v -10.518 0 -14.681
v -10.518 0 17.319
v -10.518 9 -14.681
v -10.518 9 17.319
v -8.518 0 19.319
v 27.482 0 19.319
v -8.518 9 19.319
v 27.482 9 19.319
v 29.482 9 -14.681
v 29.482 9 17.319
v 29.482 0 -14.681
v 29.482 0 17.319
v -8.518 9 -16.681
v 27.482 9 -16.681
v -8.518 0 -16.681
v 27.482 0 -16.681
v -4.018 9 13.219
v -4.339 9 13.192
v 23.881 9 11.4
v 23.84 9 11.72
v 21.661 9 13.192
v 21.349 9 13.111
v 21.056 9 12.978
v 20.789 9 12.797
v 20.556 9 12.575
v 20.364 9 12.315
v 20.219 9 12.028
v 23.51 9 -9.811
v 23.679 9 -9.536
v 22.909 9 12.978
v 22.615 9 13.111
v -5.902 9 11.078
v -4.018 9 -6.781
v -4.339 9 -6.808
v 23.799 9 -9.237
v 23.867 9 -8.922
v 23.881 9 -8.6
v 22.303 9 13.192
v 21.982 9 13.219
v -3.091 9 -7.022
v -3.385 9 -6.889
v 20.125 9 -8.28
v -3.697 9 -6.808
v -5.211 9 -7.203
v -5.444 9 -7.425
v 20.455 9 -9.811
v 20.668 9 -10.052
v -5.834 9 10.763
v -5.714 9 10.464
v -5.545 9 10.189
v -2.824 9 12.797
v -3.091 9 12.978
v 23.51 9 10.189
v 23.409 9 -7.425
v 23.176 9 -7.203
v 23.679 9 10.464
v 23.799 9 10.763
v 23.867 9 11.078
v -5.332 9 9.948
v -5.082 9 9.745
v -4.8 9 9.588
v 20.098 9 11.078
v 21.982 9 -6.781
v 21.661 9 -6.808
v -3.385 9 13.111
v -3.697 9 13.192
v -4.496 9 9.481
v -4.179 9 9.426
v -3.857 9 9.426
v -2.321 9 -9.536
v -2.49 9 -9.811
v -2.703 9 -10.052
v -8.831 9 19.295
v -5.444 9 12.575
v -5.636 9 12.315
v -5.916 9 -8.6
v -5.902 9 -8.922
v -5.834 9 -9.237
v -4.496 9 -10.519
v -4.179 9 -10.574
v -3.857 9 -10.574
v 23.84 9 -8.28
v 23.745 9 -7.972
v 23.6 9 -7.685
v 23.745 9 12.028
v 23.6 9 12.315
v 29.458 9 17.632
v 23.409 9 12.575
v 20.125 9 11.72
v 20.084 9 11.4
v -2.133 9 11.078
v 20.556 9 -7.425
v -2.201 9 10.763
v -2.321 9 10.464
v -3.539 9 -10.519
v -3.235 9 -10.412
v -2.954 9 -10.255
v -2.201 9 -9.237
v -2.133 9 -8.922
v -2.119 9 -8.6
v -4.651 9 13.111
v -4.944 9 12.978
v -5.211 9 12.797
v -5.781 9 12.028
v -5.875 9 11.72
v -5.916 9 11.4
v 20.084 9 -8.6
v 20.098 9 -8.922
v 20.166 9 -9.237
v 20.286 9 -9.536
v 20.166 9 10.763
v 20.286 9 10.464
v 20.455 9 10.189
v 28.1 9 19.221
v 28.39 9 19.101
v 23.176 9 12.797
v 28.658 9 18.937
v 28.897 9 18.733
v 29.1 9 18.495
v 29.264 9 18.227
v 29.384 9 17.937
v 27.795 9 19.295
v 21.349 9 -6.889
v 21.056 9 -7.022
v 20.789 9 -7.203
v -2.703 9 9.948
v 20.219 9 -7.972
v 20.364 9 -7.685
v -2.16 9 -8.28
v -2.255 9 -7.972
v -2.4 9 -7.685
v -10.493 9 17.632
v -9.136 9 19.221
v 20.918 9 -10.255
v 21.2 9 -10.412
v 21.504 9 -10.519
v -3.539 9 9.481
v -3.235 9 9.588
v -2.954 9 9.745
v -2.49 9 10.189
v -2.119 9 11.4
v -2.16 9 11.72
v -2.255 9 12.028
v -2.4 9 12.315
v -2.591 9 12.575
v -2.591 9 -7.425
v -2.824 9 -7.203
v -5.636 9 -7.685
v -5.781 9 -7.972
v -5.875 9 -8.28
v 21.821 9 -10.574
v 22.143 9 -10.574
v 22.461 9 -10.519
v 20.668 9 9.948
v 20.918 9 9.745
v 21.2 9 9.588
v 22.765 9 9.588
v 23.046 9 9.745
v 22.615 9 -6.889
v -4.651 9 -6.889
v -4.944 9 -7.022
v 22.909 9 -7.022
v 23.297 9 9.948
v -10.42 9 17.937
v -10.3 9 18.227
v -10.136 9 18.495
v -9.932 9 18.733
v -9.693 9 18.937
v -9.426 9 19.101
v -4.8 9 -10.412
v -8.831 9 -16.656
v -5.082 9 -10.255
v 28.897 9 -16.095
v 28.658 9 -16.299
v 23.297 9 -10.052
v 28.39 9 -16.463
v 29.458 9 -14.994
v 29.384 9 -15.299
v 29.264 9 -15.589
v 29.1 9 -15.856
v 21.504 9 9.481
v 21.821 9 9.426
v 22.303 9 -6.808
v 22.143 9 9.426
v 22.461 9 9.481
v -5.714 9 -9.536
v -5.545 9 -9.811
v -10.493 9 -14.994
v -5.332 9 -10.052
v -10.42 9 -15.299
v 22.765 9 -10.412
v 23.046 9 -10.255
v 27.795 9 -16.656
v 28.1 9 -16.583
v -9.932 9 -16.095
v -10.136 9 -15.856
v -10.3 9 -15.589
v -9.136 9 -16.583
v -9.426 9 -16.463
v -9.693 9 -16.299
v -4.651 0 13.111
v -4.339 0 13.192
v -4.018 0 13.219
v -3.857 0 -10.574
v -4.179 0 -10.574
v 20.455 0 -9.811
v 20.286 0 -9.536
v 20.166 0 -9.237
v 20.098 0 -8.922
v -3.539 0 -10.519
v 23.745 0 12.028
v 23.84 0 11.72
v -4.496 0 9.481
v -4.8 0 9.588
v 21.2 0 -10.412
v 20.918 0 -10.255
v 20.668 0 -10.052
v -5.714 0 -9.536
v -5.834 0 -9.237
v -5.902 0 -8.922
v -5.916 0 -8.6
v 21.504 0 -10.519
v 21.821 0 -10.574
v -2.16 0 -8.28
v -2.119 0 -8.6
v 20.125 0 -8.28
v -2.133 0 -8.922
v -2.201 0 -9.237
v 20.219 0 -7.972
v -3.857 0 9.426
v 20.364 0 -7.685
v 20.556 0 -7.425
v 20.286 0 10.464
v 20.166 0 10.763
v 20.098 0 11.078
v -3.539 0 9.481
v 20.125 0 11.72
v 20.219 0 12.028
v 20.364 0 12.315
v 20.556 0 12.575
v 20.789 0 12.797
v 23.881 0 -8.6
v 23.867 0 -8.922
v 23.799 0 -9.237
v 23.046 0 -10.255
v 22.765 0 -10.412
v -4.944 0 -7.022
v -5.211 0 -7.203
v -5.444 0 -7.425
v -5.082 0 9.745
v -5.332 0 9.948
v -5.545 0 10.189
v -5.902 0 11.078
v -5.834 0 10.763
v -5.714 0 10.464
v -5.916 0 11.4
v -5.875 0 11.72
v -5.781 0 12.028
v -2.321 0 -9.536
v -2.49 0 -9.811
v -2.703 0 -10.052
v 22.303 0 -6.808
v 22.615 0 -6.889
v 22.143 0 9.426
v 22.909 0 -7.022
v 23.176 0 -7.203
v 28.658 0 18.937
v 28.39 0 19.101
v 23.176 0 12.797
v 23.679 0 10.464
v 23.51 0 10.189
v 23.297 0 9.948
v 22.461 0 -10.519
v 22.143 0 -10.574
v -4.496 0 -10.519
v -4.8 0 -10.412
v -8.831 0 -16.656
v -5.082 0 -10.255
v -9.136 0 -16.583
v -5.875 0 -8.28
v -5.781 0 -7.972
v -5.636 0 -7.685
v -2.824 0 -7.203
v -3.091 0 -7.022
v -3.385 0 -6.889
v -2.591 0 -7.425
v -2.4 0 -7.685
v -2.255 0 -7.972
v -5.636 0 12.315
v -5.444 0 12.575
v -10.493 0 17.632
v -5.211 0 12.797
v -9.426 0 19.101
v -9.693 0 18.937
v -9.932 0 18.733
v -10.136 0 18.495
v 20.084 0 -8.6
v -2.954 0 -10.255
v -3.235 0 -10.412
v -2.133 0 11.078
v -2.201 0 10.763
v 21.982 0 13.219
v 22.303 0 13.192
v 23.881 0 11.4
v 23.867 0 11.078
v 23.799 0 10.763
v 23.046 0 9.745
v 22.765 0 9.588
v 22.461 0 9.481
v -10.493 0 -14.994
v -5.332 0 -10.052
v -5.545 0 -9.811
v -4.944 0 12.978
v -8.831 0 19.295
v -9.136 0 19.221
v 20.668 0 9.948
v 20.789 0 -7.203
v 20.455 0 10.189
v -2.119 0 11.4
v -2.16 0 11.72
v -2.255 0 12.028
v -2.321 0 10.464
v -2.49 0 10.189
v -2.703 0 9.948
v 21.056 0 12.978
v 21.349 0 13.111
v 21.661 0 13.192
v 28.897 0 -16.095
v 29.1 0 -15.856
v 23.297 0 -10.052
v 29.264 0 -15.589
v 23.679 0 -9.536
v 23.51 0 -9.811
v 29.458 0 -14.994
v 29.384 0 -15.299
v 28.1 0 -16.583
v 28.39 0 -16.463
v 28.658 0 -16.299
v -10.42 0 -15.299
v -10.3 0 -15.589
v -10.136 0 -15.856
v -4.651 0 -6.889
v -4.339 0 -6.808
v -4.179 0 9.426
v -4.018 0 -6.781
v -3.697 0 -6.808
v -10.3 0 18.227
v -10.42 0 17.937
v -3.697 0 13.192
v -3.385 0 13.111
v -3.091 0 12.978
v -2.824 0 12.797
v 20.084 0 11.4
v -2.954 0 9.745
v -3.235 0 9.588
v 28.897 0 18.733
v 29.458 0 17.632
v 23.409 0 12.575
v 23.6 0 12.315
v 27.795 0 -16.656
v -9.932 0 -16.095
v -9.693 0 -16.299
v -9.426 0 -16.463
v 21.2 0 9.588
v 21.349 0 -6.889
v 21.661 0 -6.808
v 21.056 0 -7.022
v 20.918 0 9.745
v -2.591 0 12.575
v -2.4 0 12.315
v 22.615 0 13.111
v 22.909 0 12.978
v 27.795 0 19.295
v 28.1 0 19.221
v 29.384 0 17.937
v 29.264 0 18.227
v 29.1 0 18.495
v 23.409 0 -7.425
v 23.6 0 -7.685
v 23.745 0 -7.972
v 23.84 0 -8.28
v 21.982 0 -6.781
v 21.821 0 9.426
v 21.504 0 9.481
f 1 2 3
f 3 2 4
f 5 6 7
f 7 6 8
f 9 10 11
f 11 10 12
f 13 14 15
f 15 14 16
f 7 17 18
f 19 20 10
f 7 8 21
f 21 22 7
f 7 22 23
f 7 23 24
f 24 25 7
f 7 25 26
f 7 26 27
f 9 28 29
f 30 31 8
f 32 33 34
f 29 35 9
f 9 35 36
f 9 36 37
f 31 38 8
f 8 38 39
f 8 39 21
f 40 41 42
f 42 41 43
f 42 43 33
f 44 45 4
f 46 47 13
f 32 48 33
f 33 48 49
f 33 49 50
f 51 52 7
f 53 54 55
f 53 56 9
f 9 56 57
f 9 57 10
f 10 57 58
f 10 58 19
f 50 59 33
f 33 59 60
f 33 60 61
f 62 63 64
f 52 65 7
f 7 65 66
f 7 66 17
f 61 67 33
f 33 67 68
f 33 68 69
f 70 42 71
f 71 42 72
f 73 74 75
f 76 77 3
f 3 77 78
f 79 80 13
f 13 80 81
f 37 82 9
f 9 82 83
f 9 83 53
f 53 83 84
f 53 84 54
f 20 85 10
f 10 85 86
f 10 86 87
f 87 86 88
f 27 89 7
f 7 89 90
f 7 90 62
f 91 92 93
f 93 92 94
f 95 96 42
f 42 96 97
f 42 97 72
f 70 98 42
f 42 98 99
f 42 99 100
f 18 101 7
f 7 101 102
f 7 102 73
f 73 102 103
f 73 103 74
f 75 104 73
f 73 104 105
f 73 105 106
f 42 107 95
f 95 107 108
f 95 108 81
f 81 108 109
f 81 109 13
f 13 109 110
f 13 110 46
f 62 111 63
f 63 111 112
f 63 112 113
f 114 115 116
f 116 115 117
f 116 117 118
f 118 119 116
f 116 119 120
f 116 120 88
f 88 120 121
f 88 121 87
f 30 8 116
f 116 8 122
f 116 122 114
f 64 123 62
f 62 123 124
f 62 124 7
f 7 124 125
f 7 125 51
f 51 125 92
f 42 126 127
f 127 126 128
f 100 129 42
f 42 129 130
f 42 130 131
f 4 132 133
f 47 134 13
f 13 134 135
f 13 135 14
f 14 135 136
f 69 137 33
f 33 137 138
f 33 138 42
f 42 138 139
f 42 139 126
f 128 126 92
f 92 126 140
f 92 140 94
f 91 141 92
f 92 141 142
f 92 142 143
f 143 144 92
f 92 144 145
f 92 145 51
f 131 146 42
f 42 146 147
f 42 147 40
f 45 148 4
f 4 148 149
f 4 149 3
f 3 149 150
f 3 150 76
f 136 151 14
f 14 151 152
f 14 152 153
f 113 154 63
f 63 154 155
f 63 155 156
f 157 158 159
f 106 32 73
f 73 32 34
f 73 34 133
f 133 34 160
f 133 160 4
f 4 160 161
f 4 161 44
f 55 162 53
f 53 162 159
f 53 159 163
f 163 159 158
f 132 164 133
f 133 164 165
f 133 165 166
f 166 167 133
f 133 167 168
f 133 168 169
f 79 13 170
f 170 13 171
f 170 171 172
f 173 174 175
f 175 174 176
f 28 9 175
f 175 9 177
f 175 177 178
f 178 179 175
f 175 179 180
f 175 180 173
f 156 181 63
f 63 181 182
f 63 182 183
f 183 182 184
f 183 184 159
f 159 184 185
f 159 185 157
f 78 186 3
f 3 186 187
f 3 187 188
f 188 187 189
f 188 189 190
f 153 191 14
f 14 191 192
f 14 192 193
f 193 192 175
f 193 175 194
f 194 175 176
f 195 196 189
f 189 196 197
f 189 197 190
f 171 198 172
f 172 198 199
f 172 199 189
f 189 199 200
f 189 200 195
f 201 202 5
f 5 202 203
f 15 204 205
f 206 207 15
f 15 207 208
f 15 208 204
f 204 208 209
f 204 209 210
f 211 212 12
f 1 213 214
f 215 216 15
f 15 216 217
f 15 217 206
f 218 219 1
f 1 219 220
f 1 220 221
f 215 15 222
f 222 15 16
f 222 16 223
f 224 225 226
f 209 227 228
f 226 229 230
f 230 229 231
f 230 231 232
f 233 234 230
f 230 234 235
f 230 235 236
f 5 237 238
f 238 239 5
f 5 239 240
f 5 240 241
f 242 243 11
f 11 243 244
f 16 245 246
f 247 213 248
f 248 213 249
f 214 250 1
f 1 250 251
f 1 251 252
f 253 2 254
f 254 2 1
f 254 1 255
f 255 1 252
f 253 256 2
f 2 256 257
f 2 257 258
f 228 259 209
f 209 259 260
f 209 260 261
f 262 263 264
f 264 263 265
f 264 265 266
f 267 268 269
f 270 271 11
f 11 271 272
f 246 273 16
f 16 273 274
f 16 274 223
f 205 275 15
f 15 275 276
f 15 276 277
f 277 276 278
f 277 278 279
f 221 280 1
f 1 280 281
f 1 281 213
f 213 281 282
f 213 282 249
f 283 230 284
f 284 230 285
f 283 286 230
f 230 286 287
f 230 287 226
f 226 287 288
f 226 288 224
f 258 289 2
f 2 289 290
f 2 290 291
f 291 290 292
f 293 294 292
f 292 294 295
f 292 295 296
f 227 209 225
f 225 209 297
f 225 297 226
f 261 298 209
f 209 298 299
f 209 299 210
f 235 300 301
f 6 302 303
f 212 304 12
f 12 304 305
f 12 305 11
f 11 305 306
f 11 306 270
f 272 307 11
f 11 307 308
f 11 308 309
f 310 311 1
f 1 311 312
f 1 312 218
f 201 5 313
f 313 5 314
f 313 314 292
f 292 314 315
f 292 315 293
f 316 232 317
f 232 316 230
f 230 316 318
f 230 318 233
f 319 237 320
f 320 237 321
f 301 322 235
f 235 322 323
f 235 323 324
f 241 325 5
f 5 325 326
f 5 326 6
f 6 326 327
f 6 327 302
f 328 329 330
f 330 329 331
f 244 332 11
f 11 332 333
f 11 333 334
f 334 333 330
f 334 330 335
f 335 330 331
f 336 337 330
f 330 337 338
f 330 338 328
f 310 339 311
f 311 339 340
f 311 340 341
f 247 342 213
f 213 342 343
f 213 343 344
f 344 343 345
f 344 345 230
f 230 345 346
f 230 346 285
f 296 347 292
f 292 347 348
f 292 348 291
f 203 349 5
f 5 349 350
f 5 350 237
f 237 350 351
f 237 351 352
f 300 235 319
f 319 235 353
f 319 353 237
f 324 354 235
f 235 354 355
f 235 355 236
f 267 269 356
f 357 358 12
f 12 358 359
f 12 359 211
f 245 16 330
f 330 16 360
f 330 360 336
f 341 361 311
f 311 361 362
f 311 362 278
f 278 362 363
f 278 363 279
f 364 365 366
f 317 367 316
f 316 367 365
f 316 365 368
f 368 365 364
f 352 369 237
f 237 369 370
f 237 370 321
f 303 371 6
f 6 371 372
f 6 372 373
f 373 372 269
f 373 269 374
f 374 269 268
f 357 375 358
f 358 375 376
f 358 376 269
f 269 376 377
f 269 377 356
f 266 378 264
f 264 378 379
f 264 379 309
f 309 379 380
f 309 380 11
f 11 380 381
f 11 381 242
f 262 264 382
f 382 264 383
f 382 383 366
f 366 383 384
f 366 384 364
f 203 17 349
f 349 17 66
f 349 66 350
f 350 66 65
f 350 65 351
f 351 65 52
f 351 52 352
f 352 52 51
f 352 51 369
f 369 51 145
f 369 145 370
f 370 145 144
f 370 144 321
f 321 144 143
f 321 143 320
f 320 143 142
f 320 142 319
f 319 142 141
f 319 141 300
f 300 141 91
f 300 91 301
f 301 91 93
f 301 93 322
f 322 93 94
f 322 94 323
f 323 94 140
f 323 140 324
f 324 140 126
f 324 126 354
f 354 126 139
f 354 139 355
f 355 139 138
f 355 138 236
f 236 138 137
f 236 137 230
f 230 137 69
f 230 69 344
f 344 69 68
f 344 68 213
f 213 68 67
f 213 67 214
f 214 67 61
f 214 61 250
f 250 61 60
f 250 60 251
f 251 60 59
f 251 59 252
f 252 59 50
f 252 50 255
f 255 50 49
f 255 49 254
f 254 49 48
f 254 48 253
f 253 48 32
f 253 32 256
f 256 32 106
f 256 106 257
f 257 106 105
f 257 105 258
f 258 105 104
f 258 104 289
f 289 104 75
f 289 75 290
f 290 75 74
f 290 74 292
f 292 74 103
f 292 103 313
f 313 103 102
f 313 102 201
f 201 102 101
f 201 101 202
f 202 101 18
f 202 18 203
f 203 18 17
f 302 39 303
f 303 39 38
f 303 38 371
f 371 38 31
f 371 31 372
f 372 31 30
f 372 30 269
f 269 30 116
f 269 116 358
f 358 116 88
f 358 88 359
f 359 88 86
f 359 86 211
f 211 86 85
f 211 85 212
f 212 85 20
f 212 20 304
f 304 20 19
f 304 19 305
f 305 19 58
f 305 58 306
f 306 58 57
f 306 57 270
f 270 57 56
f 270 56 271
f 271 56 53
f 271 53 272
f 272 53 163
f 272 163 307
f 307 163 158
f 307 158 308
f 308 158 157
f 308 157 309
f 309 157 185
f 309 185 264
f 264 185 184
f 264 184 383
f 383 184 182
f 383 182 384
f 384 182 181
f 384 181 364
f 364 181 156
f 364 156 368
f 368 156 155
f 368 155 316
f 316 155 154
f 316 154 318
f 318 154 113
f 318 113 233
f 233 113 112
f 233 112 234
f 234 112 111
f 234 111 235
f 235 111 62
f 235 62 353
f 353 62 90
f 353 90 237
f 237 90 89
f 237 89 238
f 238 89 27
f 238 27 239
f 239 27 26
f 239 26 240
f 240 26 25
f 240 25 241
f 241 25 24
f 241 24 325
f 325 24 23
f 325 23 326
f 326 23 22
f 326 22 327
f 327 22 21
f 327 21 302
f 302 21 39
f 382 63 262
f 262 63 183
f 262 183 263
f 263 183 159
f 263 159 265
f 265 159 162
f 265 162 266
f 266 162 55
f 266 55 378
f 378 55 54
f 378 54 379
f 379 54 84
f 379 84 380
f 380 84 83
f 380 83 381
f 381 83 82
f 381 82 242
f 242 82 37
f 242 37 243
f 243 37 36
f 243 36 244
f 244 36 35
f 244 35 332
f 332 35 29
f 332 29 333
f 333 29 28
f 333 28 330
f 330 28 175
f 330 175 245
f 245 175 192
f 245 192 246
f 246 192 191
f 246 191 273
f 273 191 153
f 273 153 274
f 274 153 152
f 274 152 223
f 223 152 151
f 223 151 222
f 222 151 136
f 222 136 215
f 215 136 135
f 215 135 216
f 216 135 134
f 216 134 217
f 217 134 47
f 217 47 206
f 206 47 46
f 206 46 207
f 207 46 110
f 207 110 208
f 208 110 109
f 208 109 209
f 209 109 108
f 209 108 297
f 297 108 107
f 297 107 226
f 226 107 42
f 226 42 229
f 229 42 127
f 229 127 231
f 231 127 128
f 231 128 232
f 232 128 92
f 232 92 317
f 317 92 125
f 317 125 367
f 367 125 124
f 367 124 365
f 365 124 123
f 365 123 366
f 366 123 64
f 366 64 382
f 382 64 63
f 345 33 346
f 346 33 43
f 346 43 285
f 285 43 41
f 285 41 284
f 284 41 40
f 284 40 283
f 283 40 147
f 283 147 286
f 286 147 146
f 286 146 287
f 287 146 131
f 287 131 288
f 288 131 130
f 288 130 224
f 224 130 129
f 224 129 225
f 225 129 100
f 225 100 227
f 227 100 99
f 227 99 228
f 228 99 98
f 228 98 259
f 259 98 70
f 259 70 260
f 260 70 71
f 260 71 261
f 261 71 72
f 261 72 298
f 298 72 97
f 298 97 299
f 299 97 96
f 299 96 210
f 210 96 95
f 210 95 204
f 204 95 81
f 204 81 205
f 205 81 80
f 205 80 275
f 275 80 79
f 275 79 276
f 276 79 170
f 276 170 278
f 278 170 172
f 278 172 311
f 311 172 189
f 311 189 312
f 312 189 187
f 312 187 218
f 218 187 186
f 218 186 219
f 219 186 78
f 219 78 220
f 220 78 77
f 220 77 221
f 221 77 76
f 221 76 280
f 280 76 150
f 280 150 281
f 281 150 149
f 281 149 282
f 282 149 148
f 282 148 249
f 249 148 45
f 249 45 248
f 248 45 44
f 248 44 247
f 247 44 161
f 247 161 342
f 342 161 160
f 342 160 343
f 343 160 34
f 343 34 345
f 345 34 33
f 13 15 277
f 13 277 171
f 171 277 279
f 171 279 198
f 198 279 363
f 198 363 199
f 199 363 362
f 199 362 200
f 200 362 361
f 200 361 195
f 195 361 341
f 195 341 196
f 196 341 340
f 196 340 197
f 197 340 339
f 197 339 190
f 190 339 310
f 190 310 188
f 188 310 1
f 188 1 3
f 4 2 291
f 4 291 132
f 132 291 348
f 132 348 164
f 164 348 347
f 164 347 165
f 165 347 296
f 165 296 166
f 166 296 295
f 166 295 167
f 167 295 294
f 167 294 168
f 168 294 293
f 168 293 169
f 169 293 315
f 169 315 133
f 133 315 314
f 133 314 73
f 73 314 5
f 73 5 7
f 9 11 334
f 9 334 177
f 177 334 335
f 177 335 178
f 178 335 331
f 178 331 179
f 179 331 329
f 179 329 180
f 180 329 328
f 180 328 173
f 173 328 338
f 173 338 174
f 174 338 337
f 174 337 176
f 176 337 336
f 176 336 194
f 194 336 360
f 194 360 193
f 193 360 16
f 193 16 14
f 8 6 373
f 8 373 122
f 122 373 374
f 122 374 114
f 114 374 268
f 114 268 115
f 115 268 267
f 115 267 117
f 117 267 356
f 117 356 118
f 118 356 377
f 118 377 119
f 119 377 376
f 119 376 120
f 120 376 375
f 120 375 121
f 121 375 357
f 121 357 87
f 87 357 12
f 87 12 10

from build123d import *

# Parameters (mm, degrees)
SKETCH1_W           = 40
SKETCH1_H           = 36
BOSS_EXTRUDE1_DEPTH = 9
SKETCH2_R           = 1.9
CUT_EXTRUDE1_DEPTH  = 10
FILLET1_R           = 2


with BuildPart() as part:
    # Sketch1 → Boss-Extrude1 (new body)
    with BuildSketch(Plane(origin=(0, 0, 0), x_dir=(1, 0, 0), z_dir=(0, 1, 0))):
        with Locations((9.482291419, -1.319229855)):
            Rectangle(SKETCH1_W, SKETCH1_H)
    extrude(amount=BOSS_EXTRUDE1_DEPTH)

    # Sketch2 → Cut-Extrude1 (cut)
    with BuildSketch(Plane(origin=(0, 9, 0), x_dir=(1, 0, 0), z_dir=(0, 1, 0))):
        with Locations(Location((-4.017708581, -11.319229855, 0), (0, 0, 270))):
            Circle(SKETCH2_R)
        with Locations(Location((21.982291419, -11.319229855, 0), (0, 0, 270))):
            Circle(SKETCH2_R)
        with Locations(Location((-4.017708581, 8.680770145, 0), (0, 0, 270))):
            Circle(SKETCH2_R)
        with Locations(Location((21.982291419, 8.680770145, 0), (0, 0, 270))):
            Circle(SKETCH2_R)
    extrude(amount=-CUT_EXTRUDE1_DEPTH, mode=Mode.SUBTRACT)

    # Fillet1
    fillet1_edges = [part.edges().sort_by_distance(p)[0] for p in [
        (-10.517708581, 4.5, -16.680770145),
        (29.482291419, 4.5, -16.680770145),
        (29.482291419, 4.5, 19.319229855),
        (-10.517708581, 4.5, 19.319229855),
    ]]
    fillet(fillet1_edges, radius=FILLET1_R)


solid = part.part
